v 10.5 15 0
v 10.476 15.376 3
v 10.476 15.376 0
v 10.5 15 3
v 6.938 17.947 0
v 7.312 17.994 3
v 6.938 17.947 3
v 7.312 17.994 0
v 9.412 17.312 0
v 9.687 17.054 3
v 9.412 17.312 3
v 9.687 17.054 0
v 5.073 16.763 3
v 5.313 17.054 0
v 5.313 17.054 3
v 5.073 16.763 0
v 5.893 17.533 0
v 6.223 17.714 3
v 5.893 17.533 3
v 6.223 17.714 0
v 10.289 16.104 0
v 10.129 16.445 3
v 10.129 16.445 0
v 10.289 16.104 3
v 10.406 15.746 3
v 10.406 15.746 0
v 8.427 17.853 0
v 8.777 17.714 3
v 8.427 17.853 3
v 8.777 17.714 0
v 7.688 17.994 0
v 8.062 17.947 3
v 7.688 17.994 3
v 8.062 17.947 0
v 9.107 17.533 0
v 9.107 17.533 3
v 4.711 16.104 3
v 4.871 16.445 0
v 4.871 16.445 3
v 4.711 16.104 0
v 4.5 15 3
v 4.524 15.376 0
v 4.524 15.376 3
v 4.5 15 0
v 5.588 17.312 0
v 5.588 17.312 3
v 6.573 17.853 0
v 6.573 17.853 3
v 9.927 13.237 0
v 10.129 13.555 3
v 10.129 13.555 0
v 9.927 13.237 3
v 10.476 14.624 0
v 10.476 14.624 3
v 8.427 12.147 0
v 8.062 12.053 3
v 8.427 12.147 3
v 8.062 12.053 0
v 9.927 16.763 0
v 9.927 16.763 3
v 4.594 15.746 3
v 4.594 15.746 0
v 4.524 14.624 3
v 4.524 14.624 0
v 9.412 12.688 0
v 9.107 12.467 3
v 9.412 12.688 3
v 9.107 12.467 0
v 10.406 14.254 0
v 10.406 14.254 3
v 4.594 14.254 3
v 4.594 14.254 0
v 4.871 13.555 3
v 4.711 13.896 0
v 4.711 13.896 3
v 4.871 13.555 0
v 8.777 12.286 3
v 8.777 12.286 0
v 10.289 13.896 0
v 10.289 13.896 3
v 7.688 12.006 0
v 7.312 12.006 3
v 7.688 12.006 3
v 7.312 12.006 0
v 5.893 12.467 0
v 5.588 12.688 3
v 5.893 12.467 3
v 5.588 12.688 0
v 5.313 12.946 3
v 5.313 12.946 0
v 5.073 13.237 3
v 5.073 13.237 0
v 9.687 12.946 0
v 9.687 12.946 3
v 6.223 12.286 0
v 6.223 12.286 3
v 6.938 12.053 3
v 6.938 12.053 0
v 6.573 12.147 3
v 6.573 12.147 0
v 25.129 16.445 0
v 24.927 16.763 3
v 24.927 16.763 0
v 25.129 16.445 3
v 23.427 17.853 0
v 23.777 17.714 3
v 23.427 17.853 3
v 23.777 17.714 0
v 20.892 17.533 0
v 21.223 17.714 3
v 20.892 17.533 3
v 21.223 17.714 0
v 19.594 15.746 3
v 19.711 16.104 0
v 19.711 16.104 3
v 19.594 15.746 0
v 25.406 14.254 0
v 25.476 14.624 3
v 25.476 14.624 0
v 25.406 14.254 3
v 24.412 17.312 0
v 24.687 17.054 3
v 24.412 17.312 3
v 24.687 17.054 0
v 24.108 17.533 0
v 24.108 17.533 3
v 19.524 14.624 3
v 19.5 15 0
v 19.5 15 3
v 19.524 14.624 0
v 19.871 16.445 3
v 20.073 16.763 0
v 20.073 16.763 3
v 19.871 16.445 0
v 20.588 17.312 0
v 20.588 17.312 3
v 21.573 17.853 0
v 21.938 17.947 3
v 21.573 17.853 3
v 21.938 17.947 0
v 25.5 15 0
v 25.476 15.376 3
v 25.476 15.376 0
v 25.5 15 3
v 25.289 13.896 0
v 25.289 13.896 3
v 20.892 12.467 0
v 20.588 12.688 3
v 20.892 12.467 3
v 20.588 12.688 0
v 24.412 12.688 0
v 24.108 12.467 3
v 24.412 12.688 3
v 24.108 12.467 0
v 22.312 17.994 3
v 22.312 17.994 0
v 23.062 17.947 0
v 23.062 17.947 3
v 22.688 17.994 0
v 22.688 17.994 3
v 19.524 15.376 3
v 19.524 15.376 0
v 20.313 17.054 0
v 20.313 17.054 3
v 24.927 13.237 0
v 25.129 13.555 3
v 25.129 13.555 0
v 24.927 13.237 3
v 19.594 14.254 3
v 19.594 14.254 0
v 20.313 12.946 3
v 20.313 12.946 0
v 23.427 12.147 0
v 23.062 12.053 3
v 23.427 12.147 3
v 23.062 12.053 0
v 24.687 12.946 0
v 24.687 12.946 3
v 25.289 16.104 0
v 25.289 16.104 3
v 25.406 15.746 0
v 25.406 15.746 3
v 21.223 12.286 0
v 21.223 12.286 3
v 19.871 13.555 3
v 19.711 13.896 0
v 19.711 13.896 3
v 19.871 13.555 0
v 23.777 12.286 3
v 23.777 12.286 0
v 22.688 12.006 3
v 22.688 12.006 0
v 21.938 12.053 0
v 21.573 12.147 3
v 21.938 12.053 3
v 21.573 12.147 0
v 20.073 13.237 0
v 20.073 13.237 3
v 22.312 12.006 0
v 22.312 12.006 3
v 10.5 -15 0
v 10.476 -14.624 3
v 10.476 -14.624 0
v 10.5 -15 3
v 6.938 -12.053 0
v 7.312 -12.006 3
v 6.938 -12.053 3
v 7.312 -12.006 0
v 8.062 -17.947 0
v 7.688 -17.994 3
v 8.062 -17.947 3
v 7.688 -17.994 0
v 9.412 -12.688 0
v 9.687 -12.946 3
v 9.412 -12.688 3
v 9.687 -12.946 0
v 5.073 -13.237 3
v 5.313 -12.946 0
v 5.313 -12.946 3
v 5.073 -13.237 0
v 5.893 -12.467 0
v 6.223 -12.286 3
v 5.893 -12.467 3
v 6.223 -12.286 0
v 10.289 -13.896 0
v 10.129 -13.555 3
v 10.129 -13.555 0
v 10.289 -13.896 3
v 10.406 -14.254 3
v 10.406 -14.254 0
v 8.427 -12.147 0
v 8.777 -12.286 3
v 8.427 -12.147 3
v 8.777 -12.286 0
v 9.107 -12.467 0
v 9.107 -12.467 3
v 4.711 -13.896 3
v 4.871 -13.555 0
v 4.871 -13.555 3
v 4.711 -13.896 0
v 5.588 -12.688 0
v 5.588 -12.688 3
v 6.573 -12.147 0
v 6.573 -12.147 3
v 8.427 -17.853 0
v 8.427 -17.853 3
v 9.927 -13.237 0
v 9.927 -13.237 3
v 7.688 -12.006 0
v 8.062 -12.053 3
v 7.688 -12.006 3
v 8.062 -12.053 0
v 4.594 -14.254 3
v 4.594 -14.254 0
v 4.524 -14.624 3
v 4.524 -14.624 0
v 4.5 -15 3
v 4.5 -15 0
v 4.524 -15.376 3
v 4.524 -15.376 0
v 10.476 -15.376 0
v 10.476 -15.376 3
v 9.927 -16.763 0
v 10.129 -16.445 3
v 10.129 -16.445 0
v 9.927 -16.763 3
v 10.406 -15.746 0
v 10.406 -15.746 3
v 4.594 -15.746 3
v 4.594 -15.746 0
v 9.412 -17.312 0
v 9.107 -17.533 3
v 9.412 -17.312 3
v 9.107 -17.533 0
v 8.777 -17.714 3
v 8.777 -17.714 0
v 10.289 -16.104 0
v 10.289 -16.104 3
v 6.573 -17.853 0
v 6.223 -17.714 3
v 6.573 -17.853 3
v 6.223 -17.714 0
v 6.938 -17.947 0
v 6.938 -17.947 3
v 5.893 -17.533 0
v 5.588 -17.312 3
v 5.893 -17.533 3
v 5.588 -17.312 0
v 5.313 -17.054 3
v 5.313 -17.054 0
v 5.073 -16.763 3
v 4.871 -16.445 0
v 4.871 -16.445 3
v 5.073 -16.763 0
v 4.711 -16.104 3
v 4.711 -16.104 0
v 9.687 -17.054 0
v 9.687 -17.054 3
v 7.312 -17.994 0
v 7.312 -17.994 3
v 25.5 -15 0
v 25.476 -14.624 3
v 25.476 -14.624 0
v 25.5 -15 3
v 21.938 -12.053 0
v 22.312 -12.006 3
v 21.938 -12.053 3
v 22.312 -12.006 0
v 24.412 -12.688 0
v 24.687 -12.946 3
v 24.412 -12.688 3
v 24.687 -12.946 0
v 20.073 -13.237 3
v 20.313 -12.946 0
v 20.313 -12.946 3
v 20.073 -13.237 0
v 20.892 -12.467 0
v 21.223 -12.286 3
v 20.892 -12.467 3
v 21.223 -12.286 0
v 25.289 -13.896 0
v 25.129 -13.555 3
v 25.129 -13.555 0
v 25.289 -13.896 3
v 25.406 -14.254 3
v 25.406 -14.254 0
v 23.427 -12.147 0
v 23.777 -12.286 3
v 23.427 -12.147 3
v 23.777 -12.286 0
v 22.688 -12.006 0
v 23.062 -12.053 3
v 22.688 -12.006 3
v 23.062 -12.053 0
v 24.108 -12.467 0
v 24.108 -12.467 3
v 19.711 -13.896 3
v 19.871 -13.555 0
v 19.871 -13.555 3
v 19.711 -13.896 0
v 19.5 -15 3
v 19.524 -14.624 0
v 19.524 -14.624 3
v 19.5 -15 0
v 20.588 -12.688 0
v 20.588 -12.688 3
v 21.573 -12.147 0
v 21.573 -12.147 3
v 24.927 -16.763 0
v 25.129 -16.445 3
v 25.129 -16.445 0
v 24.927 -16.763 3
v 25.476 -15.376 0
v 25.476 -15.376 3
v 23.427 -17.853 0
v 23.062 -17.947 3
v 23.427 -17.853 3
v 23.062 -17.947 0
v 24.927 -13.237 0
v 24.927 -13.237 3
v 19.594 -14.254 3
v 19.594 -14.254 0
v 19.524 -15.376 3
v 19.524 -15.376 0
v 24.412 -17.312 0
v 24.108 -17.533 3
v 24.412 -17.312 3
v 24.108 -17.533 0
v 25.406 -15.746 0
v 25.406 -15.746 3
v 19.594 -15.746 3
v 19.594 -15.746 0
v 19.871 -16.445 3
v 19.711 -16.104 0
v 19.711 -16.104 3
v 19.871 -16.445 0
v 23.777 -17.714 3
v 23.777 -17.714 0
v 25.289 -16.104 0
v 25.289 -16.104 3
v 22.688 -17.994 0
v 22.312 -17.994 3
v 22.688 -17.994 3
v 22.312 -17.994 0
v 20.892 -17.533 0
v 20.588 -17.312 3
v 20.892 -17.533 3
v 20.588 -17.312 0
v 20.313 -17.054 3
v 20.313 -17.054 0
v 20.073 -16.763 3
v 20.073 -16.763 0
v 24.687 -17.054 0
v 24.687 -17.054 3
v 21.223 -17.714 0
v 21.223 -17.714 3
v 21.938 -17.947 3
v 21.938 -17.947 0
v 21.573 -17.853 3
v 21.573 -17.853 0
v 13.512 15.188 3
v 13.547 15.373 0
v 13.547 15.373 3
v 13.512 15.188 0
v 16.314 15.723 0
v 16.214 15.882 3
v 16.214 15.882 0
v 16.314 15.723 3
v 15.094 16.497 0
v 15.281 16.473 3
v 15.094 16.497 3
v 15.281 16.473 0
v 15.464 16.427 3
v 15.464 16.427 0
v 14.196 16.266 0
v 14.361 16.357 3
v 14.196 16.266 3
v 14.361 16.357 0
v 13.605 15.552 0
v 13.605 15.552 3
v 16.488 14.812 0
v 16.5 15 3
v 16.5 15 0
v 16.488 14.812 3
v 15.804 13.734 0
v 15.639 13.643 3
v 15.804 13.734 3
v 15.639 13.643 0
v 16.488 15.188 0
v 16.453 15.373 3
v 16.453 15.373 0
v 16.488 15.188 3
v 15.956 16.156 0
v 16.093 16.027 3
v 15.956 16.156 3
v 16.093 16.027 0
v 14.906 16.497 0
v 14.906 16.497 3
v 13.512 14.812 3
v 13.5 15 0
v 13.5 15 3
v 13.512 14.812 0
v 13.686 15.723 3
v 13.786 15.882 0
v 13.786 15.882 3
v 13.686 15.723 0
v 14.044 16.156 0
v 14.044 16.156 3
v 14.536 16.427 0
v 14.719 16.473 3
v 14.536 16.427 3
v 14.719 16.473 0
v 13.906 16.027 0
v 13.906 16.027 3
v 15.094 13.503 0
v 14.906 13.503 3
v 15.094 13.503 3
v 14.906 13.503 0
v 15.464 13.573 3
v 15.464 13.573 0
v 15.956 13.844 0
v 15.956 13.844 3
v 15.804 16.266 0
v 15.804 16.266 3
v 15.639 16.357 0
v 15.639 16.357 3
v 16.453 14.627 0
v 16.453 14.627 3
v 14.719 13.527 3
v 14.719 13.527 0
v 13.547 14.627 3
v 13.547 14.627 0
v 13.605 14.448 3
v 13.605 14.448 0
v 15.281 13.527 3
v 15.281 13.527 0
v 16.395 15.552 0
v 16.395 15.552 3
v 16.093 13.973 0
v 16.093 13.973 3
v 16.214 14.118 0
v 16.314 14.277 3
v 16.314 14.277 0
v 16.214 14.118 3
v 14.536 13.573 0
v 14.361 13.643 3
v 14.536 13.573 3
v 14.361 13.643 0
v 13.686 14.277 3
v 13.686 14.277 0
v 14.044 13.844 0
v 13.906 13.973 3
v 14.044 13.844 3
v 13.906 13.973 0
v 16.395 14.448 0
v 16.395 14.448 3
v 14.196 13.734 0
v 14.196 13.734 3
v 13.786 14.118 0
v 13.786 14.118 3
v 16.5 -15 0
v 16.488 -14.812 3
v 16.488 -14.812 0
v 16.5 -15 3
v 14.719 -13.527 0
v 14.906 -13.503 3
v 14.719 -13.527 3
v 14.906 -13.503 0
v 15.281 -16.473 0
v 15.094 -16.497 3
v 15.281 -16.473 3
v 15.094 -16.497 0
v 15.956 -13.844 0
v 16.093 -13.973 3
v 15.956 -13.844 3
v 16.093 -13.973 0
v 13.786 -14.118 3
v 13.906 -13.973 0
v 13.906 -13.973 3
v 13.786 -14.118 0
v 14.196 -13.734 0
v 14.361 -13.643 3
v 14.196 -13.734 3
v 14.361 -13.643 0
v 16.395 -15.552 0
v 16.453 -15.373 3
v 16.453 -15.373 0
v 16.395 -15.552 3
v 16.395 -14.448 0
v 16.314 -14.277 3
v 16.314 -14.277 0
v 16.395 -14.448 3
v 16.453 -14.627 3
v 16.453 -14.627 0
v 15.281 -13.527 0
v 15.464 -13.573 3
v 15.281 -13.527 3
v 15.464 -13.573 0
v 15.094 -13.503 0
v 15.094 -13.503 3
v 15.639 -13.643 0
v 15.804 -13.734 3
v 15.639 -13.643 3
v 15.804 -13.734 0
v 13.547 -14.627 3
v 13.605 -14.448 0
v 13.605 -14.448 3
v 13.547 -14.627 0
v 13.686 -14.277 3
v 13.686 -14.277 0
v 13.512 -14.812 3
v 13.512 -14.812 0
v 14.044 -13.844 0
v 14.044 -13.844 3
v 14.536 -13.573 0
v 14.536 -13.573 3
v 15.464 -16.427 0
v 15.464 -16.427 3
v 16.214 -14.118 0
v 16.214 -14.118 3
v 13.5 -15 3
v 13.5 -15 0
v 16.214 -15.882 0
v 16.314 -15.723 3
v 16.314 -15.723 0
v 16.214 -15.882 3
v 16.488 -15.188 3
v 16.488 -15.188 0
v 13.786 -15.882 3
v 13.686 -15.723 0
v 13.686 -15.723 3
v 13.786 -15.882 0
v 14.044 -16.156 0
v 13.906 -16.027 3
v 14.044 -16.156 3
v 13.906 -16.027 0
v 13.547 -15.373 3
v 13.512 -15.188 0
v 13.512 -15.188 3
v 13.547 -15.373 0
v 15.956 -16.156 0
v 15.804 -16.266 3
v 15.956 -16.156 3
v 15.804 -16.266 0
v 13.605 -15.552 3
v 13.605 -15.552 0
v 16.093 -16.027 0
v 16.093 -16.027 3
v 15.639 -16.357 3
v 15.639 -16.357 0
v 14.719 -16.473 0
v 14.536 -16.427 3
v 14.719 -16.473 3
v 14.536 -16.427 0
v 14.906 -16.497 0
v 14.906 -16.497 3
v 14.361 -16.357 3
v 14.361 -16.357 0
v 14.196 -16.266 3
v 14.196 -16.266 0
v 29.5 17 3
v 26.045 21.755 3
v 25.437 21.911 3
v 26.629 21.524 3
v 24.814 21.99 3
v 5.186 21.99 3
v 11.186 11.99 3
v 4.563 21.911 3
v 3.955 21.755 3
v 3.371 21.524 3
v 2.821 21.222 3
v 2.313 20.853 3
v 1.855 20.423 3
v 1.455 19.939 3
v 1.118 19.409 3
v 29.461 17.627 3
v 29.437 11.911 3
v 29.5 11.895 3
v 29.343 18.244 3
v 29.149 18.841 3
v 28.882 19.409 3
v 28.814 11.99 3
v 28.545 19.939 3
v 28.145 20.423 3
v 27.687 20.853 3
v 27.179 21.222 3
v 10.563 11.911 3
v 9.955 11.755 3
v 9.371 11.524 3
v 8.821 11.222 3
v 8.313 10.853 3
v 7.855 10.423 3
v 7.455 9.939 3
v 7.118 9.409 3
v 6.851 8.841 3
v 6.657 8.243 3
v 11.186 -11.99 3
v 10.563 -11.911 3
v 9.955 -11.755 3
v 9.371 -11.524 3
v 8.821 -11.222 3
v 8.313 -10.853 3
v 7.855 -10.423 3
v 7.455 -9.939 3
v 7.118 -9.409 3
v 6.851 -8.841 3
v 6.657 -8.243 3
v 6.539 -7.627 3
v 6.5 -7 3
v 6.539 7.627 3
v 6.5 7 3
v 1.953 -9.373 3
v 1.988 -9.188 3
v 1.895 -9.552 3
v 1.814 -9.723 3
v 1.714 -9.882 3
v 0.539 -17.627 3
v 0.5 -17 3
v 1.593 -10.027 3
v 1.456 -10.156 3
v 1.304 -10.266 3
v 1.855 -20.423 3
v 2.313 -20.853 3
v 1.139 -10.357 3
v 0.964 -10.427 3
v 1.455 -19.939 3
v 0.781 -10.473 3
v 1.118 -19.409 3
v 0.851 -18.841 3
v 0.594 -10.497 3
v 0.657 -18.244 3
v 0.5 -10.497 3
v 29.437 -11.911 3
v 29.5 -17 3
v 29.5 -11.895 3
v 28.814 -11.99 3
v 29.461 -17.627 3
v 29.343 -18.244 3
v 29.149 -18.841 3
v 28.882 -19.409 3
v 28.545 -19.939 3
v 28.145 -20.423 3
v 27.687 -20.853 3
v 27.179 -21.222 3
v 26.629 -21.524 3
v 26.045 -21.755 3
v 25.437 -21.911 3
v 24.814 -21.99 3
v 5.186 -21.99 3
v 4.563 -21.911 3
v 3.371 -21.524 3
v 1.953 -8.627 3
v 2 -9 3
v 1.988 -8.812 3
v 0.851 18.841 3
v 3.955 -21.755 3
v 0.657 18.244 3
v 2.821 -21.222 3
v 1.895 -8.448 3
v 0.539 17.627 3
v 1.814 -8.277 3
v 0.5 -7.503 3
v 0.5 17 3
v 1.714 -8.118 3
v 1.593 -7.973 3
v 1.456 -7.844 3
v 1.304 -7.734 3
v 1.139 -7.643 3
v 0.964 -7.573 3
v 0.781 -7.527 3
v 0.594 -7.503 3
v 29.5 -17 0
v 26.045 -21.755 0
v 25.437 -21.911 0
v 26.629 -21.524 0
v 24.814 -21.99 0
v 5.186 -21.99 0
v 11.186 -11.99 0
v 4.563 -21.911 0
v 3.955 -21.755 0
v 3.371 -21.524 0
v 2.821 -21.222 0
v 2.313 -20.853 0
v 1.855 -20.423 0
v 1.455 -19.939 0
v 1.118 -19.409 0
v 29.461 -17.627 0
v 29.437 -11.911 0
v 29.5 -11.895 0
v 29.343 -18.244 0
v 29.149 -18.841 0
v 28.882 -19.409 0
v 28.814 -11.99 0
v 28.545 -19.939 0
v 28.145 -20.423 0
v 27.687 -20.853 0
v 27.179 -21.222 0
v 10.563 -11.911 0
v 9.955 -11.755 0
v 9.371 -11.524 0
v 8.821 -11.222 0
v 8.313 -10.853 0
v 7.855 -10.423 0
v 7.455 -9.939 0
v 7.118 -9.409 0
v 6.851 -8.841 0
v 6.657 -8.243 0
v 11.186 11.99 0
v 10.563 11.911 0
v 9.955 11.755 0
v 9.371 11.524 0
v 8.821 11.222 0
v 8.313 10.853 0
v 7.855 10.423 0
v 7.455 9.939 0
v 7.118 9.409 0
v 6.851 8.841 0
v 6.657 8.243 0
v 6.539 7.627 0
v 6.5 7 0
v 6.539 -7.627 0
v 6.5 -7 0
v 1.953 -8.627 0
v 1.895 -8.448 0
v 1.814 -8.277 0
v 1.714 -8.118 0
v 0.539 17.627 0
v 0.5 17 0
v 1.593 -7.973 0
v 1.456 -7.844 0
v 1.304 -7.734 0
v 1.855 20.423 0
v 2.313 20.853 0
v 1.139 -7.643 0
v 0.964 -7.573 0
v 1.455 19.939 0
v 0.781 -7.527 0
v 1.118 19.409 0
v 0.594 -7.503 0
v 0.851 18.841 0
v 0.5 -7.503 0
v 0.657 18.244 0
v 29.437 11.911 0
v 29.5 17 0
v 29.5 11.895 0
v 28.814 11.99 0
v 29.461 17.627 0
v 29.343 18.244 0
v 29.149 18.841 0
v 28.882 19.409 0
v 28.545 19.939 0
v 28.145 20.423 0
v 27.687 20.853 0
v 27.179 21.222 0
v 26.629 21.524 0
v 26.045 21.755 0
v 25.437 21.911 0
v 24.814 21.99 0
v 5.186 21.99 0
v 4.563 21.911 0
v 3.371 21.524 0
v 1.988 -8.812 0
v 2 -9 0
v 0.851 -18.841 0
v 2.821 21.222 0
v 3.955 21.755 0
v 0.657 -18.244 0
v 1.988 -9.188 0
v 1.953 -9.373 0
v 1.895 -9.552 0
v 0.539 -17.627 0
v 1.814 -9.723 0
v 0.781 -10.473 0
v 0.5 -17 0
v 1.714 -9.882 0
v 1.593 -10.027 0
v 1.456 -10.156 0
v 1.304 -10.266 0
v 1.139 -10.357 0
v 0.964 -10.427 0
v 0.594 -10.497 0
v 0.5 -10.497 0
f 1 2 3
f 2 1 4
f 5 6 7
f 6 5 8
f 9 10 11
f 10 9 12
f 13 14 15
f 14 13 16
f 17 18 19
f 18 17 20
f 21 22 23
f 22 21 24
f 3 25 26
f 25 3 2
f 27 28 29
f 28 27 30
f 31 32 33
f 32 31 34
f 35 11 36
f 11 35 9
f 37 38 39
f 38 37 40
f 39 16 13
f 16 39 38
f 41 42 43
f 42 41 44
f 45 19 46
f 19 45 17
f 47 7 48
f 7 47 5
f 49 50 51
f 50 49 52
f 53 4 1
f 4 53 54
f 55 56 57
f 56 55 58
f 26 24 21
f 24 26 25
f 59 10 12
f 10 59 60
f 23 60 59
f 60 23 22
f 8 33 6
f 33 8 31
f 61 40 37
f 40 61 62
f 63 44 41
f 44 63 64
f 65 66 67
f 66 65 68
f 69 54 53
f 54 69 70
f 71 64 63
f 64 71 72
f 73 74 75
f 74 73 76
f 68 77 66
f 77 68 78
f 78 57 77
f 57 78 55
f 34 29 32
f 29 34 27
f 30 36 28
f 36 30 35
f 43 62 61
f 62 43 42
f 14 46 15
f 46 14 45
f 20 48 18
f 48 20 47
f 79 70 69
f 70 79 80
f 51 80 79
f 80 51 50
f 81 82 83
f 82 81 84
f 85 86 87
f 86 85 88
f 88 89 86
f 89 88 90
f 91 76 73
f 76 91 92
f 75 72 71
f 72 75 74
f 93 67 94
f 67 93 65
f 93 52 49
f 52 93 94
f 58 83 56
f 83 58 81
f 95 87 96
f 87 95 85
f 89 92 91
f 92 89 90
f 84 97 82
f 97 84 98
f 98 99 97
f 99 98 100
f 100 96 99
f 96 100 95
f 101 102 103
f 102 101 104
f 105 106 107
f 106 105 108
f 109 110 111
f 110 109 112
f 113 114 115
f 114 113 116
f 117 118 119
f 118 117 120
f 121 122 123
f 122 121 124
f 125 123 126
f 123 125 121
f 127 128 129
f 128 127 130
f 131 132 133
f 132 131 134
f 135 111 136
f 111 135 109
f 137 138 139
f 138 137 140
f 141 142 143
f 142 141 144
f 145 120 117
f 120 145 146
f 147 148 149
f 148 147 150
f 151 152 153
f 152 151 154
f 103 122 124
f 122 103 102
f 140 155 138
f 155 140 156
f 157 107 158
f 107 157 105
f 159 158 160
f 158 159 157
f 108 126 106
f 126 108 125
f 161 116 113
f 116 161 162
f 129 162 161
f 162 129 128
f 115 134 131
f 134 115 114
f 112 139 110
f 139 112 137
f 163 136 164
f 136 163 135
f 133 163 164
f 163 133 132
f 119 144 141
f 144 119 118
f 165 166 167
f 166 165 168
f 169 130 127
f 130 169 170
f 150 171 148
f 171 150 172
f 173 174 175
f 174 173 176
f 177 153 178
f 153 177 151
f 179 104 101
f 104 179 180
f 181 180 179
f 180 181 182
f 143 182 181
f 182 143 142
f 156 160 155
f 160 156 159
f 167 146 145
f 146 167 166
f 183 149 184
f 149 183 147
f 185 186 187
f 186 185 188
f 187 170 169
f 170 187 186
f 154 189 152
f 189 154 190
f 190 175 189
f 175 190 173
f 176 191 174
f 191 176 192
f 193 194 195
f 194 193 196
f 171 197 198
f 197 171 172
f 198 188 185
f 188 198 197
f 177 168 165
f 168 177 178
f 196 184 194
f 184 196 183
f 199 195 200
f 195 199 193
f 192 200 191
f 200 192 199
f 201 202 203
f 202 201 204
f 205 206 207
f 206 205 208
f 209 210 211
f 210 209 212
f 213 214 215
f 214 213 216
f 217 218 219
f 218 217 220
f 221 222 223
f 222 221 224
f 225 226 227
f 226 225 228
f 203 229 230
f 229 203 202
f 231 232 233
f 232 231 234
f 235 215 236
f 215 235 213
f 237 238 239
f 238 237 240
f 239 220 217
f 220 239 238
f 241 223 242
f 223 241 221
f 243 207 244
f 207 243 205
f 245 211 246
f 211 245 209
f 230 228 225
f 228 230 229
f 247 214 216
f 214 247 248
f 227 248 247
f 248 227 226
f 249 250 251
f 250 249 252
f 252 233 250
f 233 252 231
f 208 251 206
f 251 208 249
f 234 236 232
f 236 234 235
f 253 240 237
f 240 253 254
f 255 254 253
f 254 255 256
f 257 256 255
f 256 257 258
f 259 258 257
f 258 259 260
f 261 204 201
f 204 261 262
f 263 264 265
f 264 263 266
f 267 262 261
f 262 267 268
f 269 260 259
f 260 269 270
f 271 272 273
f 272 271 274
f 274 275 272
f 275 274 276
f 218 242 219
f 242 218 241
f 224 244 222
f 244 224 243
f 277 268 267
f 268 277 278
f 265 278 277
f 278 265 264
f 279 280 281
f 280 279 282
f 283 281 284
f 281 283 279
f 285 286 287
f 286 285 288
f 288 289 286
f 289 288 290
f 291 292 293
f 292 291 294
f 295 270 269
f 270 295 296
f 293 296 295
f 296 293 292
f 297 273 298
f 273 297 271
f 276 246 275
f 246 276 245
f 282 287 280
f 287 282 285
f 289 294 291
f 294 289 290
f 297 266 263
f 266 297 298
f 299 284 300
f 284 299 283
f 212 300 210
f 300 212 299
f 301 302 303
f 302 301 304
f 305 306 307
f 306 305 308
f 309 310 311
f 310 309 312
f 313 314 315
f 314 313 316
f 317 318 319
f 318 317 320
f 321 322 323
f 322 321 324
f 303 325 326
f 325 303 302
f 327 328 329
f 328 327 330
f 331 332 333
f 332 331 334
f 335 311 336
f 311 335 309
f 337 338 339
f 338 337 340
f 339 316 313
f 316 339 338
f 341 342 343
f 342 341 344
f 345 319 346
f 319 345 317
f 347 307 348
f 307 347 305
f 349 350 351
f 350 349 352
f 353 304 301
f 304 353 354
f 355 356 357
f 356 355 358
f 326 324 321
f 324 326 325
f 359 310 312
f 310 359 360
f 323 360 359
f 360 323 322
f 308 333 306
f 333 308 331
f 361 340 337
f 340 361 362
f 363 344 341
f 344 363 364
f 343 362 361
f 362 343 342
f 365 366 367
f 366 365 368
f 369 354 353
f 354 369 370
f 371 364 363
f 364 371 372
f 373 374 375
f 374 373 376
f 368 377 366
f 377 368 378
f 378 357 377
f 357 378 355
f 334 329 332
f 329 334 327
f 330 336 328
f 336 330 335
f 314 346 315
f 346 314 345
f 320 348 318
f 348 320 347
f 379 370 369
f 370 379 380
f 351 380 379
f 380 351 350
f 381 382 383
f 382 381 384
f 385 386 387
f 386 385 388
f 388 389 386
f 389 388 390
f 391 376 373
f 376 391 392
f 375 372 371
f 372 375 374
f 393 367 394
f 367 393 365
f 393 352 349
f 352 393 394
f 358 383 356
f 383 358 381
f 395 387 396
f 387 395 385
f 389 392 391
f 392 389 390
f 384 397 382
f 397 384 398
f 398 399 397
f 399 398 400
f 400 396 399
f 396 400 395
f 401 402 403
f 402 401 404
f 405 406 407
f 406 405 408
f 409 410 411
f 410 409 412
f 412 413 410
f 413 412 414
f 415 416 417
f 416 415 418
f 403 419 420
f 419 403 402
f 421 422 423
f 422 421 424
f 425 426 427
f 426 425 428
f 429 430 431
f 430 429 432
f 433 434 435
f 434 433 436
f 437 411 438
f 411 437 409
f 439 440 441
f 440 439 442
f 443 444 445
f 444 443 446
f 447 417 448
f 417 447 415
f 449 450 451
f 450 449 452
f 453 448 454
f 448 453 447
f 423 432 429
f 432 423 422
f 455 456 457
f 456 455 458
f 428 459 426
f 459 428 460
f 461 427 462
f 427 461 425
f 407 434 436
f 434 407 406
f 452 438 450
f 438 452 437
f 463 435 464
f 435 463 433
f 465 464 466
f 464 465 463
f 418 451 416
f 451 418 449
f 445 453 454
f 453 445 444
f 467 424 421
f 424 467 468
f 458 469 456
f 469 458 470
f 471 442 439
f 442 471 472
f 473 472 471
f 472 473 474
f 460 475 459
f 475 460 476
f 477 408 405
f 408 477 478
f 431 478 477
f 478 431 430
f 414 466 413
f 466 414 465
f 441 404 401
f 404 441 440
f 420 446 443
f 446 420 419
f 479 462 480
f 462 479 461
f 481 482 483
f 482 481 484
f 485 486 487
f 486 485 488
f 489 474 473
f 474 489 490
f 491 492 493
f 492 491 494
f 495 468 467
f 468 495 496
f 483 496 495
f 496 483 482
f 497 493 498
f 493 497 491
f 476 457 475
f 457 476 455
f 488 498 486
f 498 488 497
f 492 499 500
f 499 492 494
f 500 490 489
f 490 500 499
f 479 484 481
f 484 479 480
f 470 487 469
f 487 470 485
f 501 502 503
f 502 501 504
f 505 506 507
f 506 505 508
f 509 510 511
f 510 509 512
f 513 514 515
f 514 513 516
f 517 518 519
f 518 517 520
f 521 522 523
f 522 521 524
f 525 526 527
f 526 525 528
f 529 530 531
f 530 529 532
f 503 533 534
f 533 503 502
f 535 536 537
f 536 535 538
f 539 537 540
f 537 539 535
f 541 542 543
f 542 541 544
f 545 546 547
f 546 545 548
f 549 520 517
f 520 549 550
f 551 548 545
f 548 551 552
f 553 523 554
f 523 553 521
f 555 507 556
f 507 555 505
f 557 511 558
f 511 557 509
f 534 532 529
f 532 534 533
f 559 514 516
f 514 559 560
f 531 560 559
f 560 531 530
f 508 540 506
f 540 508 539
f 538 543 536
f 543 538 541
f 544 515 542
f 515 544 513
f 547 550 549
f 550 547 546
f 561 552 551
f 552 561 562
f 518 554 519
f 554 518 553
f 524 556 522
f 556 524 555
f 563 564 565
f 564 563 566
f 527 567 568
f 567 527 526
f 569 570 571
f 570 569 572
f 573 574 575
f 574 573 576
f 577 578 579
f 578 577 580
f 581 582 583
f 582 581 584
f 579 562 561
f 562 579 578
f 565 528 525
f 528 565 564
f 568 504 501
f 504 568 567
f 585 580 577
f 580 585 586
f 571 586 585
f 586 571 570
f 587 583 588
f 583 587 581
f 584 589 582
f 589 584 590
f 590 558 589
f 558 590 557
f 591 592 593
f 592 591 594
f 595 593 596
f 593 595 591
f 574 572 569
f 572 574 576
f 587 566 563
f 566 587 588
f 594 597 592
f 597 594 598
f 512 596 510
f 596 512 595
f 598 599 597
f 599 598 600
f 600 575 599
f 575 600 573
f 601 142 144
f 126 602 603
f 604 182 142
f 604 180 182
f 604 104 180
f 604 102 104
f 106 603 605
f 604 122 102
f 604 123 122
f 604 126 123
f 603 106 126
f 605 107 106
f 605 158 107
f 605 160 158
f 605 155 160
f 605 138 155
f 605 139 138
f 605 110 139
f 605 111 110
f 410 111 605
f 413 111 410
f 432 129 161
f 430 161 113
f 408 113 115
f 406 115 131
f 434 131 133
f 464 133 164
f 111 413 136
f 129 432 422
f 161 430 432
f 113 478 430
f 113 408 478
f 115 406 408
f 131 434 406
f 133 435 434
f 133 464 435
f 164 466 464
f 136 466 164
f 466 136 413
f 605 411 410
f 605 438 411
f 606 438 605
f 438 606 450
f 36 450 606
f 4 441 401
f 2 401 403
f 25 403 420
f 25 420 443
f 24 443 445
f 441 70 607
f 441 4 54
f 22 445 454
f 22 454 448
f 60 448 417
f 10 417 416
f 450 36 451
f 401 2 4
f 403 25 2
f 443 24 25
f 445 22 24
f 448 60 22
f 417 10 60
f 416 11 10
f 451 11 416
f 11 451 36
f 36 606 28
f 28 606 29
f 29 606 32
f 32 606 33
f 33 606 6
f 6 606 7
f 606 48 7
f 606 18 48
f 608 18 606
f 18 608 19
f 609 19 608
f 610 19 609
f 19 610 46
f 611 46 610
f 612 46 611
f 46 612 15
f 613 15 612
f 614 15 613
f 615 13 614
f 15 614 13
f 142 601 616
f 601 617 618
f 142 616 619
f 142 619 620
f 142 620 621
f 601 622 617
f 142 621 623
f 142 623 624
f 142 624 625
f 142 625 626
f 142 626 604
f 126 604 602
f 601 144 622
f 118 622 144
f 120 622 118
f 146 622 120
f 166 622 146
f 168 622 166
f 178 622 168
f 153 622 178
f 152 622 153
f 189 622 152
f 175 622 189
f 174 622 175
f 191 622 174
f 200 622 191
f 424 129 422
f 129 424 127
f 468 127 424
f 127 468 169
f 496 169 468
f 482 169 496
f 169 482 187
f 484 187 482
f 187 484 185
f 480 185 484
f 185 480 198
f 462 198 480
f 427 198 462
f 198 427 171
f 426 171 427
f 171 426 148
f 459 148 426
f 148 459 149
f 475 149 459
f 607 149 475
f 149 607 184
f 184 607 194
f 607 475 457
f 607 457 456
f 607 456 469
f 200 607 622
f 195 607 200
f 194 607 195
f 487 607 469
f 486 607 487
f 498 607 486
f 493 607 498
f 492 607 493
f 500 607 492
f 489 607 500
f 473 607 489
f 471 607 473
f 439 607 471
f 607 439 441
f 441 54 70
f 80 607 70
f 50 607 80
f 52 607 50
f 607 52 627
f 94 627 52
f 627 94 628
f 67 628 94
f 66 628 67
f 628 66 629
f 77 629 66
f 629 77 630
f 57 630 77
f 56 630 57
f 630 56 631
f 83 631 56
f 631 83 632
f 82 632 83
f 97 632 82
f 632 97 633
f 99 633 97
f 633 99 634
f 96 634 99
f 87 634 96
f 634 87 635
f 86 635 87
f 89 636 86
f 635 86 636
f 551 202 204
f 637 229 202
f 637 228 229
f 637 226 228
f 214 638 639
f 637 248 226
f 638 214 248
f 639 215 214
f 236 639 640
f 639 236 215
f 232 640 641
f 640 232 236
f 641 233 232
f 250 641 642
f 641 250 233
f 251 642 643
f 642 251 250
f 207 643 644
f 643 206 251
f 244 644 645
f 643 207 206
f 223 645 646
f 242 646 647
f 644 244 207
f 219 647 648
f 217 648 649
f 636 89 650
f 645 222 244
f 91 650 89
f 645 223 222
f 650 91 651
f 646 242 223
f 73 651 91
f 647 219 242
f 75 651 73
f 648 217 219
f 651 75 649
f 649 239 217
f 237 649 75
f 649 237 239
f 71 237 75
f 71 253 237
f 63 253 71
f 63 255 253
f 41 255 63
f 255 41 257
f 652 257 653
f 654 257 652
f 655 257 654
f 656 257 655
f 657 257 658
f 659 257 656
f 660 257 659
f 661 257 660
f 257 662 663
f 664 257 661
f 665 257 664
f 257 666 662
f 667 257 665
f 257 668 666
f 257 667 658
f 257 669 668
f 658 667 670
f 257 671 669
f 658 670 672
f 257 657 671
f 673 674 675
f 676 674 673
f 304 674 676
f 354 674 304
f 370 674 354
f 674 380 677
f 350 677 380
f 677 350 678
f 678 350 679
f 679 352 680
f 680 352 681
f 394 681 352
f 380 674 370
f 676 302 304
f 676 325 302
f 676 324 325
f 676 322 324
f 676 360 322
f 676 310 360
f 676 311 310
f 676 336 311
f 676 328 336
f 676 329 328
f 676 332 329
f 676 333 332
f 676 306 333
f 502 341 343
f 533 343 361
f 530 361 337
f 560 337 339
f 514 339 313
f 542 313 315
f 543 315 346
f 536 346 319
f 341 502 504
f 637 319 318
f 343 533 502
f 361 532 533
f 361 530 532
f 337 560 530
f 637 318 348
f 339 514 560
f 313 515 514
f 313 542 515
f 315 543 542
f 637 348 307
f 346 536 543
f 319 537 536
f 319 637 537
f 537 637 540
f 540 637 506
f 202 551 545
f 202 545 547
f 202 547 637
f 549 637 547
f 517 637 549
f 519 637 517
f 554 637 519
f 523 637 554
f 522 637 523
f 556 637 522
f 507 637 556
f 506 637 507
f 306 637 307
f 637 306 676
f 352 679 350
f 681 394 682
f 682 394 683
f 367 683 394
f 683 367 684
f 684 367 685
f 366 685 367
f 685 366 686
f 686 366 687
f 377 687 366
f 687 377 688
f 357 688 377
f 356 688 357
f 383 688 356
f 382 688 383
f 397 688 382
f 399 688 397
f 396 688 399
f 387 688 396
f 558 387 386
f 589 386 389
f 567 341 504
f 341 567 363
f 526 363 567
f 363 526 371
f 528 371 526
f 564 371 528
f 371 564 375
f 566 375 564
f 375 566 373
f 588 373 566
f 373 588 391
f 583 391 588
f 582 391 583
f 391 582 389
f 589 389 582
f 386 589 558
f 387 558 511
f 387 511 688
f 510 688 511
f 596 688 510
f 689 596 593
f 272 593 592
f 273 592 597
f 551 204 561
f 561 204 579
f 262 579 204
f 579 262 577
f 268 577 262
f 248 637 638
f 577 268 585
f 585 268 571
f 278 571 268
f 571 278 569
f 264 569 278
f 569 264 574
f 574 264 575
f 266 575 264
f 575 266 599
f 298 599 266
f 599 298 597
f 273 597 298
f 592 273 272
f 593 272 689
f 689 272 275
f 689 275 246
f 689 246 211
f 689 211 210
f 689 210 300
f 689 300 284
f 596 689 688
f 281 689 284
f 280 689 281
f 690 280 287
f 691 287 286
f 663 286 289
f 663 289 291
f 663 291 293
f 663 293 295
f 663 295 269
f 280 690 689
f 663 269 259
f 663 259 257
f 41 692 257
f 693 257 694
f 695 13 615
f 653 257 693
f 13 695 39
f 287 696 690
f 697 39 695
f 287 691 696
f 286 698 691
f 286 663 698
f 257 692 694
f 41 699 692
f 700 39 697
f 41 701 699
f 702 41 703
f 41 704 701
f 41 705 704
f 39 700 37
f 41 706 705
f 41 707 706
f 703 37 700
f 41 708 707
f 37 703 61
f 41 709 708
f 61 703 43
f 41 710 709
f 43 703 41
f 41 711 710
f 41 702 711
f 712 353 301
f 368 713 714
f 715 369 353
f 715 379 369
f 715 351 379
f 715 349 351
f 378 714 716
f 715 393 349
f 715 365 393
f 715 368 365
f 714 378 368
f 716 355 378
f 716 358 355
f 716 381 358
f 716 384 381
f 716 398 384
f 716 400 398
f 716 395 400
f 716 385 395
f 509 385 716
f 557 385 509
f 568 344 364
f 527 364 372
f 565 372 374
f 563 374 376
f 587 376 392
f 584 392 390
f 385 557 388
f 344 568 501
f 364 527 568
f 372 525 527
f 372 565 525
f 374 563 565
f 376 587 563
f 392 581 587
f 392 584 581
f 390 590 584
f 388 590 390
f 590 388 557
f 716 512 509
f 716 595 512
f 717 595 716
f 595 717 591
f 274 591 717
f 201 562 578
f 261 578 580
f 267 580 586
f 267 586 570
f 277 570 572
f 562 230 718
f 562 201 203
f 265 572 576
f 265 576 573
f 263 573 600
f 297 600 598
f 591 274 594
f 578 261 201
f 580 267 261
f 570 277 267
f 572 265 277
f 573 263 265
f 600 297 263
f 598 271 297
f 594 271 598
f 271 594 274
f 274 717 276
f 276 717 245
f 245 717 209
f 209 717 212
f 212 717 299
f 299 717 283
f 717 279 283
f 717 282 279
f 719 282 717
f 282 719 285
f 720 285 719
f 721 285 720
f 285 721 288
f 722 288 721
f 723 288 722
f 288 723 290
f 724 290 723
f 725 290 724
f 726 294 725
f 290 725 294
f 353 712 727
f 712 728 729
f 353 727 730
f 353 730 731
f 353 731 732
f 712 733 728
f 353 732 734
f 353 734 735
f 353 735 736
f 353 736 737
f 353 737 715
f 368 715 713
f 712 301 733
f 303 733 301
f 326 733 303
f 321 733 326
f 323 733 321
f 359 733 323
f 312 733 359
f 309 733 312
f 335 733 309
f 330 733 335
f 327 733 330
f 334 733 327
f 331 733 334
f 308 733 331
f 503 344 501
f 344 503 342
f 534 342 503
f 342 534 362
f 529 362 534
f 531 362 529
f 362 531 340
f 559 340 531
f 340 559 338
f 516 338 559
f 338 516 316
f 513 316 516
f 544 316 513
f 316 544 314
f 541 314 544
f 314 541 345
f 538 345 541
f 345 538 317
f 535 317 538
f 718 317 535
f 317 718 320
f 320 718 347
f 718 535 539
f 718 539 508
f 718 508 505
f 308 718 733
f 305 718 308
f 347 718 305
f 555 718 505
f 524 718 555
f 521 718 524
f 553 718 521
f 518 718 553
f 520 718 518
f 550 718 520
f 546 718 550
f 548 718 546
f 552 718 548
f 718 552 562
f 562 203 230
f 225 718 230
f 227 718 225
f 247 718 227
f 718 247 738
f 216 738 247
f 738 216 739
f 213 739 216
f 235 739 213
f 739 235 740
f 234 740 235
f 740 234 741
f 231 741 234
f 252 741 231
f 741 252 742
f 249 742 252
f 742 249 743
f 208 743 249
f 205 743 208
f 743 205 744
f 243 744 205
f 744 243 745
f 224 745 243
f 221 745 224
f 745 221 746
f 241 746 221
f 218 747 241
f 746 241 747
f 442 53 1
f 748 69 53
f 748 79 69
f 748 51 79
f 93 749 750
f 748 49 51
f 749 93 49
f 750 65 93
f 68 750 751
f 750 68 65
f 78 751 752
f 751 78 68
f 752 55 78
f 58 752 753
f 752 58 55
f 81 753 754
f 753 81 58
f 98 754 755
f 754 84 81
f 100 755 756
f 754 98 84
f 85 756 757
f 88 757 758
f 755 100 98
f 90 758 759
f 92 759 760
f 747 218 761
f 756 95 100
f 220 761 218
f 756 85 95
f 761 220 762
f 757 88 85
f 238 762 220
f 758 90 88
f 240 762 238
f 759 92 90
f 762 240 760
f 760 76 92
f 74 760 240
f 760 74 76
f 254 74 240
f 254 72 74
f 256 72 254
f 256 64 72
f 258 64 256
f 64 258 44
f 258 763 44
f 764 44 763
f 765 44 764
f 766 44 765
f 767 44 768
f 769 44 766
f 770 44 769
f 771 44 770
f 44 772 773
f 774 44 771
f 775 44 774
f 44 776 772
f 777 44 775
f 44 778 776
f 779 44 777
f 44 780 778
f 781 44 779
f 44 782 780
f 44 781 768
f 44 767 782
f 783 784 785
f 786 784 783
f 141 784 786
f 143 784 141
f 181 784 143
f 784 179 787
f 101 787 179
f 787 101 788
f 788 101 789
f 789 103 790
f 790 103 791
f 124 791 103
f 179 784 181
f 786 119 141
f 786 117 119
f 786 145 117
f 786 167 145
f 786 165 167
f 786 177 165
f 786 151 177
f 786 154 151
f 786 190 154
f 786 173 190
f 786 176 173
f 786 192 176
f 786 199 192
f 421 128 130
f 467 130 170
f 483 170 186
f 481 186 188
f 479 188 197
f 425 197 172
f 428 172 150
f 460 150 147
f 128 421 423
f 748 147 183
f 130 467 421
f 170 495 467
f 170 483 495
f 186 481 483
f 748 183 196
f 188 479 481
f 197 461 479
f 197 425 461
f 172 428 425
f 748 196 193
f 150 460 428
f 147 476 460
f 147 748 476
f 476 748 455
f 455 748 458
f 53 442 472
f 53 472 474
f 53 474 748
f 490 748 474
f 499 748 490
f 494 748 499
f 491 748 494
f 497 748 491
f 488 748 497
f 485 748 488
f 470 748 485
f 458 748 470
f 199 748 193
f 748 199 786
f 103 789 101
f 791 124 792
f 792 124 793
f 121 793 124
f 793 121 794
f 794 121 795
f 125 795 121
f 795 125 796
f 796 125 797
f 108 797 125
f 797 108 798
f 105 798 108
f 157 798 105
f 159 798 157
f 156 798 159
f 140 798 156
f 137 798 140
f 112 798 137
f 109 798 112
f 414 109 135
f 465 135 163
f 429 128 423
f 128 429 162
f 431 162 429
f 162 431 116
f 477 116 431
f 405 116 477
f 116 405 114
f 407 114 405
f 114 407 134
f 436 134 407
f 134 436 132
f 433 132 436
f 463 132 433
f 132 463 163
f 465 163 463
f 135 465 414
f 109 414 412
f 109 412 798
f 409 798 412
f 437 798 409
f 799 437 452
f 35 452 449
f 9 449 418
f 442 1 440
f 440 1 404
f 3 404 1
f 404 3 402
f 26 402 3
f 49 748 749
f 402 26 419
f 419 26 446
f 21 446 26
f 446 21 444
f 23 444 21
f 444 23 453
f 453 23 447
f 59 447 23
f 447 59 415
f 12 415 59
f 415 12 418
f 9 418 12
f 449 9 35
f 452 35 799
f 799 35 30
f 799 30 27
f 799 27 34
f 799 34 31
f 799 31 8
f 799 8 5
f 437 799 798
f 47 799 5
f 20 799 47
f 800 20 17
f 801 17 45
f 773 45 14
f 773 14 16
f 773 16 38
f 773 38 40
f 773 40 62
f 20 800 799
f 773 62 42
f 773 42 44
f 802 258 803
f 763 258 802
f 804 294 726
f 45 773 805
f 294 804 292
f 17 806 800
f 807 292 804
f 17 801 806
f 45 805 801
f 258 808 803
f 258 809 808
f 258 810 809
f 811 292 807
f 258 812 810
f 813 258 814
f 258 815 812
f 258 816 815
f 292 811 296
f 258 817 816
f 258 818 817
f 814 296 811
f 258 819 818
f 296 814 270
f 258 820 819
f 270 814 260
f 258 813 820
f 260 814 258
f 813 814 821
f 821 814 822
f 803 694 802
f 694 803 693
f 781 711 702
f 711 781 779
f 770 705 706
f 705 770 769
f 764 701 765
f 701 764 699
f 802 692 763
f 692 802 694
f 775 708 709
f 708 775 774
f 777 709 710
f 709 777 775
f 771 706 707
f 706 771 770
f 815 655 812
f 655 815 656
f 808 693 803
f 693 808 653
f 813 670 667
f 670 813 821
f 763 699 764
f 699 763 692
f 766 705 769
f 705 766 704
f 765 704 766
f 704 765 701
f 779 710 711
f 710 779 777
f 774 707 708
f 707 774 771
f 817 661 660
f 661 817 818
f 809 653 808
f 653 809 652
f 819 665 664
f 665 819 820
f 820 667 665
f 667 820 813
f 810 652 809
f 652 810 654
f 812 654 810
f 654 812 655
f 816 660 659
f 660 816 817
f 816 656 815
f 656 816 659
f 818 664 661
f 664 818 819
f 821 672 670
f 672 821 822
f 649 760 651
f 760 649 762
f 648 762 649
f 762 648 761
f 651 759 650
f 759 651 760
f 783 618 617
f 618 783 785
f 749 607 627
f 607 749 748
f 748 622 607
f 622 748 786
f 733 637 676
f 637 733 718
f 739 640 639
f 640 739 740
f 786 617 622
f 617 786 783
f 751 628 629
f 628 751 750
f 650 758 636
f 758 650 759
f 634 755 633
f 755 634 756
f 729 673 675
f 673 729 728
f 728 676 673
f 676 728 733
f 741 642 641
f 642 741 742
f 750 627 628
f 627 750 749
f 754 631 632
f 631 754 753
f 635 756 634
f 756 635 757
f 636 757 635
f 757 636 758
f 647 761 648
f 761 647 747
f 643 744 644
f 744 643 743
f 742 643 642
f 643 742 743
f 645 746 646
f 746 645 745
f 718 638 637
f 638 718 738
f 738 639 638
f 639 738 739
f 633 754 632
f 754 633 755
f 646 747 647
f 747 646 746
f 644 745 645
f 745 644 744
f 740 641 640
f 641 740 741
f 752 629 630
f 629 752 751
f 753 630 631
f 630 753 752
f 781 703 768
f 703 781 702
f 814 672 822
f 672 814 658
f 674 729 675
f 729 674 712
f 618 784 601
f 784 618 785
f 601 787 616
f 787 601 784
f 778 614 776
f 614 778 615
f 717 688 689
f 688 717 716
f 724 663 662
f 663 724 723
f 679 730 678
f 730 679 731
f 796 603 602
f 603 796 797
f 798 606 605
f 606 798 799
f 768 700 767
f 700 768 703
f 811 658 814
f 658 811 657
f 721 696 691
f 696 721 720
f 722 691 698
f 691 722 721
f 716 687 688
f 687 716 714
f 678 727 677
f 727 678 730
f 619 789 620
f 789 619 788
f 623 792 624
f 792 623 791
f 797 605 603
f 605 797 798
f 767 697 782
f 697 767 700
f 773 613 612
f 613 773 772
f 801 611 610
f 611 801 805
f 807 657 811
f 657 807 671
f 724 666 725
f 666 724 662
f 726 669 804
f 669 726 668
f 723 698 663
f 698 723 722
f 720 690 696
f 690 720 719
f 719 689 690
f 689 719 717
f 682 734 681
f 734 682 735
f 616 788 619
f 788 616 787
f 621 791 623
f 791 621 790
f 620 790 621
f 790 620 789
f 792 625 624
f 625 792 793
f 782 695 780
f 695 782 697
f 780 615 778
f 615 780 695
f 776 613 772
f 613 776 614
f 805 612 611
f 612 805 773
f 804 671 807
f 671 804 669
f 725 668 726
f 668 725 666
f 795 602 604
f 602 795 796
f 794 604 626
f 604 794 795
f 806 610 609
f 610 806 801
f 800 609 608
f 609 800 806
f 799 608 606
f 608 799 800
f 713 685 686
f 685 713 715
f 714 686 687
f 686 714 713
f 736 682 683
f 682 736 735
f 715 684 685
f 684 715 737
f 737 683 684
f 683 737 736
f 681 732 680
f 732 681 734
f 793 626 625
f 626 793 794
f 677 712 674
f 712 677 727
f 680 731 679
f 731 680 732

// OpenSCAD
$fn = 50;


difference() {
	union() {
		translate(v = [15.0000000000, 0, 0]) {
			rotate(a = [0, 0, 0]) {
				hull() {
					translate(v = [-9.5000000000, 17.0000000000, 0]) {
						rotate(a = [0, 0, 0]) {
							translate(v = [0, 0, 0]) {
								rotate(a = [0, 0, 0]) {
									cylinder(h = 3, r = 5);
								}
							}
						}
					}
					translate(v = [9.5000000000, 17.0000000000, 0]) {
						rotate(a = [0, 0, 0]) {
							translate(v = [0, 0, 0]) {
								rotate(a = [0, 0, 0]) {
									cylinder(h = 3, r = 5);
								}
							}
						}
					}
					translate(v = [-9.5000000000, -17.0000000000, 0]) {
						rotate(a = [0, 0, 0]) {
							translate(v = [0, 0, 0]) {
								rotate(a = [0, 0, 0]) {
									cylinder(h = 3, r = 5);
								}
							}
						}
					}
					translate(v = [9.5000000000, -17.0000000000, 0]) {
						rotate(a = [0, 0, 0]) {
							translate(v = [0, 0, 0]) {
								rotate(a = [0, 0, 0]) {
									cylinder(h = 3, r = 5);
								}
							}
						}
					}
				}
			}
		}
	}
	union() {
		translate(v = [7.5000000000, 15.0000000000, -125.0000000000]) {
			rotate(a = [0, 0, 0]) {
				cylinder(h = 250, r = 3.0000000000);
			}
		}
		translate(v = [22.5000000000, 15.0000000000, -125.0000000000]) {
			rotate(a = [0, 0, 0]) {
				cylinder(h = 250, r = 3.0000000000);
			}
		}
		translate(v = [7.5000000000, -15.0000000000, -125.0000000000]) {
			rotate(a = [0, 0, 0]) {
				cylinder(h = 250, r = 3.0000000000);
			}
		}
		translate(v = [22.5000000000, -15.0000000000, -125.0000000000]) {
			rotate(a = [0, 0, 0]) {
				cylinder(h = 250, r = 3.0000000000);
			}
		}
		translate(v = [7.5000000000, 15.0000000000, -125.0000000000]) {
			rotate(a = [0, 0, 0]) {
				cylinder(h = 250, r = 1.5000000000);
			}
		}
		translate(v = [15.0000000000, 15.0000000000, -125.0000000000]) {
			rotate(a = [0, 0, 0]) {
				cylinder(h = 250, r = 1.5000000000);
			}
		}
		translate(v = [22.5000000000, 15.0000000000, -125.0000000000]) {
			rotate(a = [0, 0, 0]) {
				cylinder(h = 250, r = 1.5000000000);
			}
		}
		translate(v = [7.5000000000, -15.0000000000, -125.0000000000]) {
			rotate(a = [0, 0, 0]) {
				cylinder(h = 250, r = 1.5000000000);
			}
		}
		translate(v = [15.0000000000, -15.0000000000, -125.0000000000]) {
			rotate(a = [0, 0, 0]) {
				cylinder(h = 250, r = 1.5000000000);
			}
		}
		translate(v = [22.5000000000, -15.0000000000, -125.0000000000]) {
			rotate(a = [0, 0, 0]) {
				cylinder(h = 250, r = 1.5000000000);
			}
		}
		translate(v = [15, 7.5000000000, -125.0000000000]) {
			rotate(a = [0, 0, 0]) {
				cylinder(h = 250, r = 1.5000000000);
			}
		}
		translate(v = [15, -7.5000000000, -125.0000000000]) {
			rotate(a = [0, 0, 0]) {
				cylinder(h = 250, r = 1.5000000000);
			}
		}
		translate(v = [15, 7.5000000000, 3]) {
			rotate(a = [0, 0, 0]) {
				translate(v = [0, 0, 0]) {
					rotate(a = [0, 0, 0]) {
						linear_extrude(height = 2.5000000000) {
							polygon(points = [[3.1735000000, 0.0000000000], [1.5867500000, 2.7483316189], [-1.5867500000, 2.7483316189], [-3.1735000000, 0.0000000000], [-1.5867500000, -2.7483316189], [1.5867500000, -2.7483316189]]);
						}
					}
				}
			}
		}
		translate(v = [15, -7.5000000000, 3]) {
			rotate(a = [0, 0, 0]) {
				translate(v = [0, 0, 0]) {
					rotate(a = [0, 0, 0]) {
						linear_extrude(height = 2.5000000000) {
							polygon(points = [[3.1735000000, 0.0000000000], [1.5867500000, 2.7483316189], [-1.5867500000, 2.7483316189], [-3.1735000000, 0.0000000000], [-1.5867500000, -2.7483316189], [1.5867500000, -2.7483316189]]);
						}
					}
				}
			}
		}
		translate(v = [25.0890000000, -4.5000000000, 0]) {
			rotate(a = [0, 0, 0]) {
				cube(size = [3, 9, 10]);
			}
		}
		translate(v = [0.5000000000, -9, 0.0000000000]) {
			rotate(a = [0, 0, 0]) {
				cylinder(h = 3, r = 1.5000000000);
			}
		}
		translate(v = [20, 0, 0]) {
			rotate(a = [0, 0, 0]) {
				hull() {
					translate(v = [-8.5000000000, 7.0000000000, 0]) {
						rotate(a = [0, 0, 0]) {
							translate(v = [0, 0, 0]) {
								rotate(a = [0, 0, 0]) {
									cylinder(h = 3, r = 5);
								}
							}
						}
					}
					translate(v = [8.5000000000, 7.0000000000, 0]) {
						rotate(a = [0, 0, 0]) {
							translate(v = [0, 0, 0]) {
								rotate(a = [0, 0, 0]) {
									cylinder(h = 3, r = 5);
								}
							}
						}
					}
					translate(v = [-8.5000000000, -7.0000000000, 0]) {
						rotate(a = [0, 0, 0]) {
							translate(v = [0, 0, 0]) {
								rotate(a = [0, 0, 0]) {
									cylinder(h = 3, r = 5);
								}
							}
						}
					}
					translate(v = [8.5000000000, -7.0000000000, 0]) {
						rotate(a = [0, 0, 0]) {
							translate(v = [0, 0, 0]) {
								rotate(a = [0, 0, 0]) {
									cylinder(h = 3, r = 5);
								}
							}
						}
					}
				}
			}
		}
	}
}
